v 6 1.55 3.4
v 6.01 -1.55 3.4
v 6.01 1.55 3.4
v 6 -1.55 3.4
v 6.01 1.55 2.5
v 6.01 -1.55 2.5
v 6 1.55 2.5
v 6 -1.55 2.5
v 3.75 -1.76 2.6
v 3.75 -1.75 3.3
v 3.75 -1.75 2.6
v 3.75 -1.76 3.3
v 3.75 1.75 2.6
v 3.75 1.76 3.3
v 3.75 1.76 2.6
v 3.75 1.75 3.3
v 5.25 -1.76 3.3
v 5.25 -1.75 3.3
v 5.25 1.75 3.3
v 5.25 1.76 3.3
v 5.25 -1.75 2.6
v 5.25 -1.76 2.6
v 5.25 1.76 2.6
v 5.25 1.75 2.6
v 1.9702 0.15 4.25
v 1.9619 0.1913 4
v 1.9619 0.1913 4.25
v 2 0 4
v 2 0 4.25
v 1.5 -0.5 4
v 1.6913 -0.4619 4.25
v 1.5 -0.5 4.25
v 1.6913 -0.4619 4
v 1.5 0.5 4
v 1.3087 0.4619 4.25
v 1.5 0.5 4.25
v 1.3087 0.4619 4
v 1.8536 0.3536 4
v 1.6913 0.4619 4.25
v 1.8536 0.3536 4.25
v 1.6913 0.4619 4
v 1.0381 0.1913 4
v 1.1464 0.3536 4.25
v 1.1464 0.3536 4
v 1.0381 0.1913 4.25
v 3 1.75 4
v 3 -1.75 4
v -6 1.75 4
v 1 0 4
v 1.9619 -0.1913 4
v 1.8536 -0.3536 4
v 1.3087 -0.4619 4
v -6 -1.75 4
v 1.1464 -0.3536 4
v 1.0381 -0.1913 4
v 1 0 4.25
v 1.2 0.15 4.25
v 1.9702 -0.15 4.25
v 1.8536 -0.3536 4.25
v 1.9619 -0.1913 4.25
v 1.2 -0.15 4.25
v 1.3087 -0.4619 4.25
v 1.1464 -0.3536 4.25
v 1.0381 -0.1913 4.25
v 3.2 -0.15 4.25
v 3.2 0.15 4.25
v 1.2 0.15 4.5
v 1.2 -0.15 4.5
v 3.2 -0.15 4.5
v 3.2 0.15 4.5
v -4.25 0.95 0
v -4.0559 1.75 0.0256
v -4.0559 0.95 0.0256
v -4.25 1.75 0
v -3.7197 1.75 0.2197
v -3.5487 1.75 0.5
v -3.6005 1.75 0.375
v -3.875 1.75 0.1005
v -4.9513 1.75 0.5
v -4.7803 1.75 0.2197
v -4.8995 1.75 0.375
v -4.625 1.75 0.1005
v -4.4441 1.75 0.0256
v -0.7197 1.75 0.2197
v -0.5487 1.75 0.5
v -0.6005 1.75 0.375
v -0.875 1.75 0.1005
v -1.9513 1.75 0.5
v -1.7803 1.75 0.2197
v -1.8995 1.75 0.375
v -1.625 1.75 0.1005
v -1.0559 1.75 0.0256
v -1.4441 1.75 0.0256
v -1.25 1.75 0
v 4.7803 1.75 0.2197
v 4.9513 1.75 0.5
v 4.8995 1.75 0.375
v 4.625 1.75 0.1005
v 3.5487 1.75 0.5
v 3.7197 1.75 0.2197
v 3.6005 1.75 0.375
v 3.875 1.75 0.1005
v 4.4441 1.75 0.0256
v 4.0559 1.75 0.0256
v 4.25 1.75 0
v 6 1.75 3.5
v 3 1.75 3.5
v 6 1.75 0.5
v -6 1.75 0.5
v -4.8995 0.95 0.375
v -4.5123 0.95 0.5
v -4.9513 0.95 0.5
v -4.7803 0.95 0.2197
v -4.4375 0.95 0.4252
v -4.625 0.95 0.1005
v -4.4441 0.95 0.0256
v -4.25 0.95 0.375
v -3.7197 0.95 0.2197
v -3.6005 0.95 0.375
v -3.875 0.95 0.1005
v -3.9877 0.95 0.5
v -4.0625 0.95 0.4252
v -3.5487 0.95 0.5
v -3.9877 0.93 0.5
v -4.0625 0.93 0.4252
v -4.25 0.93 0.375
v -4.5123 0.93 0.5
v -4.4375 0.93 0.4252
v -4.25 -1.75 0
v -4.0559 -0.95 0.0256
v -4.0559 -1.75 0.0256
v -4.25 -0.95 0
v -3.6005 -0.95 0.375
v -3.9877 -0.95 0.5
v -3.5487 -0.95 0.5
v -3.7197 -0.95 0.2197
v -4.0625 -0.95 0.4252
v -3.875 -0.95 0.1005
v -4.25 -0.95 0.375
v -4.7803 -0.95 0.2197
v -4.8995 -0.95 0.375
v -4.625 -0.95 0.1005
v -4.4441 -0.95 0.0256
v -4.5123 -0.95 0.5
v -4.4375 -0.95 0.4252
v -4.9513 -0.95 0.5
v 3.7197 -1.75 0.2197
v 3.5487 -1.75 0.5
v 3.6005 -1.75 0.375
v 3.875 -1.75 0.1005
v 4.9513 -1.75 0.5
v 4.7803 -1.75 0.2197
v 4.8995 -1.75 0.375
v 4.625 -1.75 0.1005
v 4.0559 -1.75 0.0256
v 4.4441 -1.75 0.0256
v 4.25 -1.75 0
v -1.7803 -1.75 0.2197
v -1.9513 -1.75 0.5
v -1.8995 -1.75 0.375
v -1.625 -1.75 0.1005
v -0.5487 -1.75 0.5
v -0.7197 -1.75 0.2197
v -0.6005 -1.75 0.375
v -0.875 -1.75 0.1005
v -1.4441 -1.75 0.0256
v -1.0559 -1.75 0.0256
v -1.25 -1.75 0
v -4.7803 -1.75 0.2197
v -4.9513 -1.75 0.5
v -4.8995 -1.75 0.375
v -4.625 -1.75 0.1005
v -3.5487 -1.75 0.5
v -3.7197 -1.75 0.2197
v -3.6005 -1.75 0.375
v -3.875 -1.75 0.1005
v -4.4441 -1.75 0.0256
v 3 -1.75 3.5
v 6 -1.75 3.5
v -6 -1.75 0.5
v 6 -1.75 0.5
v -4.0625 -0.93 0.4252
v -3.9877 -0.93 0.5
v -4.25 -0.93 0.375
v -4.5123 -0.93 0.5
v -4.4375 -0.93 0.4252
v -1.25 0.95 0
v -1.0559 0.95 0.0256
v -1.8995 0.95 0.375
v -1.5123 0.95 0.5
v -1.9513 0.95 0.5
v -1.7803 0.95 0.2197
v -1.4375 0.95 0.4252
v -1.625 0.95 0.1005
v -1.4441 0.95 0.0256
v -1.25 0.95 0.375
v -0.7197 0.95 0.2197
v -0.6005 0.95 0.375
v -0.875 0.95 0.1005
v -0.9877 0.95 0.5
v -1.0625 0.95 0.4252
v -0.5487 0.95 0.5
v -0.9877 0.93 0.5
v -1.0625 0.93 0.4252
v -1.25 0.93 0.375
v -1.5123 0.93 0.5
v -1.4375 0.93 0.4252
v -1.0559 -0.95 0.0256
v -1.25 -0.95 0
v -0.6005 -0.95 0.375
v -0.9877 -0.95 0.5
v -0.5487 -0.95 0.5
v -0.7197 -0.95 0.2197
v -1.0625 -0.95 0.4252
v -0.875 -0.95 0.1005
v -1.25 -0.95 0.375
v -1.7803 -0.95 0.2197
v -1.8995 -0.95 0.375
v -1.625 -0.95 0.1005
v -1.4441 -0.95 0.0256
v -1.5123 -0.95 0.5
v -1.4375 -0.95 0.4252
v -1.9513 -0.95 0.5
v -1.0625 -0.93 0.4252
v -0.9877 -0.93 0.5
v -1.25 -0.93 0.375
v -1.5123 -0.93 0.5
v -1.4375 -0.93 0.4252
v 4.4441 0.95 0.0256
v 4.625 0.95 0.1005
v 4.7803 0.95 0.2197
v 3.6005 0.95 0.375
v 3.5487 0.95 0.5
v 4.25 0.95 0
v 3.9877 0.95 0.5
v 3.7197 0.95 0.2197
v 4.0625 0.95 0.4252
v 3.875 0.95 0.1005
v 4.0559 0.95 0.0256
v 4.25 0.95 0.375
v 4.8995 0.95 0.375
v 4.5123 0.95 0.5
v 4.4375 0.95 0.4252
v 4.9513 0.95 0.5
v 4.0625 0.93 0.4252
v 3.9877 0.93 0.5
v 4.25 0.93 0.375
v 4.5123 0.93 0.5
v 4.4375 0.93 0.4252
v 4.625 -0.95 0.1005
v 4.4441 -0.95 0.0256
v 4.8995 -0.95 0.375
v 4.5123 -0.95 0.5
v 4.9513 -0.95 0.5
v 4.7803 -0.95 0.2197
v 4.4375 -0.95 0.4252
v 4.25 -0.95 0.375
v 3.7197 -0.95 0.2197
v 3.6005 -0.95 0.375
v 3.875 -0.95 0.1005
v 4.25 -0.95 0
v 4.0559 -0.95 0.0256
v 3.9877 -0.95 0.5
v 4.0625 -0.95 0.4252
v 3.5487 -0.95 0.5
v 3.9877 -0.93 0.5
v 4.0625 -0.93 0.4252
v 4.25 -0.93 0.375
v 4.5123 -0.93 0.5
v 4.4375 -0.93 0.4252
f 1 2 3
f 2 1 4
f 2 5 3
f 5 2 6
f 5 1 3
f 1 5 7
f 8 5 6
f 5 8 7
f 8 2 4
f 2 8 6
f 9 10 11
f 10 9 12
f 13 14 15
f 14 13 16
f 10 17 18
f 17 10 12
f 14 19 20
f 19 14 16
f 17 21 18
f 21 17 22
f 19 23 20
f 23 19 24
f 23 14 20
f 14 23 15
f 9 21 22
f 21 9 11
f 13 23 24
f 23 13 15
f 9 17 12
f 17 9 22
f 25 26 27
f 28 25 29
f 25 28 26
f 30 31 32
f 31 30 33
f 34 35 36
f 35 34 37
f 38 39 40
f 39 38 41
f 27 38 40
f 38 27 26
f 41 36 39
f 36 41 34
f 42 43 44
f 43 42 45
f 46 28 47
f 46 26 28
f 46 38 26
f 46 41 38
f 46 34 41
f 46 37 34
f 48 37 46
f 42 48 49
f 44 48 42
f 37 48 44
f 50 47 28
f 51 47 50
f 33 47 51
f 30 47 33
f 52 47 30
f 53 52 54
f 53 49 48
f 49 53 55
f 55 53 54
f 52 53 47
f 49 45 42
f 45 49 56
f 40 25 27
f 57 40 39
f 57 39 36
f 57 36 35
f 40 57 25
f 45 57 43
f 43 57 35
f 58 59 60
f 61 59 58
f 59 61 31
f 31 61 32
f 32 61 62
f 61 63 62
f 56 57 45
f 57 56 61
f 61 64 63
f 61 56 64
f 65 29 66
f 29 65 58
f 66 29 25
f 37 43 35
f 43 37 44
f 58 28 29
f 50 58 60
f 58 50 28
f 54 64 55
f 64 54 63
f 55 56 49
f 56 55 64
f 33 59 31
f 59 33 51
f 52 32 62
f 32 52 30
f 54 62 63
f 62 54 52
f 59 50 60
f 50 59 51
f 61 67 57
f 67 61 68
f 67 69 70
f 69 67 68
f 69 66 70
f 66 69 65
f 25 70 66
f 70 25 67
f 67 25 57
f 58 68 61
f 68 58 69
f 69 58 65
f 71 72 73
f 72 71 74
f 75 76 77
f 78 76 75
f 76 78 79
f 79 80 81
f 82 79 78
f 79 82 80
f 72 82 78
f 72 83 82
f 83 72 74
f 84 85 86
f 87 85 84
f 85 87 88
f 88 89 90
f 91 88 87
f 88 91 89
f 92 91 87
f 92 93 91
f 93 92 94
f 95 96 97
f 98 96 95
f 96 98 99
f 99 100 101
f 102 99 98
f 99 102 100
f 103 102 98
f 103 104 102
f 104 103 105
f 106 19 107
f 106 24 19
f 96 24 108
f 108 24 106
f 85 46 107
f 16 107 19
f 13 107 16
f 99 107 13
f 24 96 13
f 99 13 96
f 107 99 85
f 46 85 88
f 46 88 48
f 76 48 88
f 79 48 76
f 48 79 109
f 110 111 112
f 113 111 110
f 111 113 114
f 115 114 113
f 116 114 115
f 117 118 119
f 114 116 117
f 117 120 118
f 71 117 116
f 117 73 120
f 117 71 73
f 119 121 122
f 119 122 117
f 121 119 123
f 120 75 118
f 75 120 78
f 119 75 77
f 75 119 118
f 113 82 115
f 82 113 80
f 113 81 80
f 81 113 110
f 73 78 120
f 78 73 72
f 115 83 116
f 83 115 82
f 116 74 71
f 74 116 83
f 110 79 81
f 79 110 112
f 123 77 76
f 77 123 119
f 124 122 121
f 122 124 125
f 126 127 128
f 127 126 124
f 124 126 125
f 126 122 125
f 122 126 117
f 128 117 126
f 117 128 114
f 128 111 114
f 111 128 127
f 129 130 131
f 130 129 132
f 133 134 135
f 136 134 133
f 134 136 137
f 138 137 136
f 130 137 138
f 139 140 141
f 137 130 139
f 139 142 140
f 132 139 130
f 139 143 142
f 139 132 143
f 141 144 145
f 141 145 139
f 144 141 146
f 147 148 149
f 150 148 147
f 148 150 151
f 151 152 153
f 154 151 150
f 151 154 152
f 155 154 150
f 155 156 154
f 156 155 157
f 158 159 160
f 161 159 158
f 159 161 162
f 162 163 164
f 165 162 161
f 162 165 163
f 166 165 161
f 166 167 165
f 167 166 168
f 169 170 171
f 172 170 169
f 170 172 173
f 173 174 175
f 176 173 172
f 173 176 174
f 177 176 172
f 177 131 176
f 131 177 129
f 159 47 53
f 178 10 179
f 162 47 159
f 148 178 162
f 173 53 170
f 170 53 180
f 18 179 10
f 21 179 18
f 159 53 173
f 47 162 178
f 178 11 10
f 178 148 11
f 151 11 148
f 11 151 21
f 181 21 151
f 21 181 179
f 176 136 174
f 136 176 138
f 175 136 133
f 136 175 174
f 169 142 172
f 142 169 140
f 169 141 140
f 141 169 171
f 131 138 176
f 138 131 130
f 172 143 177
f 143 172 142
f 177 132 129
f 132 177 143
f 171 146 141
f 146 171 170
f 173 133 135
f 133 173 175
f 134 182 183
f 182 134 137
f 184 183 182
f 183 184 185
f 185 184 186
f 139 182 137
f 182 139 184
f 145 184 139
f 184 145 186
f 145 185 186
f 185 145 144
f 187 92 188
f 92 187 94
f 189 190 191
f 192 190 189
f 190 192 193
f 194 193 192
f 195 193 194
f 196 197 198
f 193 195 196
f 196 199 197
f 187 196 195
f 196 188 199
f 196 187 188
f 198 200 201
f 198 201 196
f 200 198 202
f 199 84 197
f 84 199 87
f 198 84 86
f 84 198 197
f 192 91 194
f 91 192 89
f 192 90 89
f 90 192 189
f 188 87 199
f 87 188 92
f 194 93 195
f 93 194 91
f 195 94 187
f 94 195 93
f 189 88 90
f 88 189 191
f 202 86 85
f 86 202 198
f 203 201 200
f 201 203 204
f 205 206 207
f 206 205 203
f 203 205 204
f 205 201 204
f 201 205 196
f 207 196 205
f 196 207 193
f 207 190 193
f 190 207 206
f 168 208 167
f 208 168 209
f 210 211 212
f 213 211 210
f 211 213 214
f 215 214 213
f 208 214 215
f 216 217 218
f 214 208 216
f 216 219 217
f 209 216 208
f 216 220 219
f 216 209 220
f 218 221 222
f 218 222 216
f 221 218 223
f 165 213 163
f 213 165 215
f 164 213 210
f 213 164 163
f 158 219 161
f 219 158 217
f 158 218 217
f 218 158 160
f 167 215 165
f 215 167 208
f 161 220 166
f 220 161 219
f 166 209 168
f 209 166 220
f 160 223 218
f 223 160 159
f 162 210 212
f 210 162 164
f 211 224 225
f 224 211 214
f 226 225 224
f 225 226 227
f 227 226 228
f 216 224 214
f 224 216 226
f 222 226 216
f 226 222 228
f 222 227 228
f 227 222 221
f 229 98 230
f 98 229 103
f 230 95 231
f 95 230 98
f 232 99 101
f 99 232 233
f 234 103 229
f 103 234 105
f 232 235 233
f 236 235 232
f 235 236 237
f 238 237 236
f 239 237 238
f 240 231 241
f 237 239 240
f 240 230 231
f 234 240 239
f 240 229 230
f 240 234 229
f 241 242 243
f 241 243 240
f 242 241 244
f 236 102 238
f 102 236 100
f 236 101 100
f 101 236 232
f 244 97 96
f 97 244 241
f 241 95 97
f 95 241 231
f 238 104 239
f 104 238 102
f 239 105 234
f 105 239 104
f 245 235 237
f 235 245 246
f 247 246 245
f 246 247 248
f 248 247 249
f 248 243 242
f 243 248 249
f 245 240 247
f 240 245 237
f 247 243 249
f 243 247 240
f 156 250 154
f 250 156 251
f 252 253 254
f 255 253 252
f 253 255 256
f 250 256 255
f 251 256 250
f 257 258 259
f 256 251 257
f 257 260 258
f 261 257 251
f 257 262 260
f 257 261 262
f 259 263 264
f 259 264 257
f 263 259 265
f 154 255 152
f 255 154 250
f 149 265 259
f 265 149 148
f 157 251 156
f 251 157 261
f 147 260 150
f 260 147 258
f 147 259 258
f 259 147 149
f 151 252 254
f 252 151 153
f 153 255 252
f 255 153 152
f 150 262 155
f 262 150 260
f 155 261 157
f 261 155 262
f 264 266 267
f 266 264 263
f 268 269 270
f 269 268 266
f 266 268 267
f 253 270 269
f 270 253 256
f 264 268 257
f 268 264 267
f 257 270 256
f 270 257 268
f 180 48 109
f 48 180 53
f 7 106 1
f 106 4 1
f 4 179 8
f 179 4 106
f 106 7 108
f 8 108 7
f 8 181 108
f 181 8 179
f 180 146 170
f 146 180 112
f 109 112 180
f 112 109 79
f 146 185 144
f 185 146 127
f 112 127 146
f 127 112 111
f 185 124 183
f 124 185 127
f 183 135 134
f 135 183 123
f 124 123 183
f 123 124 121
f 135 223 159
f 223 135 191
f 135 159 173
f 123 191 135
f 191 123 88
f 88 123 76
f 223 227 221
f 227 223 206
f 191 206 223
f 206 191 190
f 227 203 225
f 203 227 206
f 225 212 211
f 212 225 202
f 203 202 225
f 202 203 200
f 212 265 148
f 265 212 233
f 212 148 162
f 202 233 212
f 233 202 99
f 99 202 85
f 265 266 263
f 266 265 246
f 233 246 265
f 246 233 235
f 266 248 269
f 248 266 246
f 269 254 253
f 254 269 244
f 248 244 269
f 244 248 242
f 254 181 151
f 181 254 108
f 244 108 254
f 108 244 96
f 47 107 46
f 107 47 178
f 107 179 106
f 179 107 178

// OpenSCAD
// Airport Crash Tender / ARFF Fire Truck

module ARFF_FireTruck() {
    length = 12;
    width = 3.5;
    
    c_body = "firebrick";
    c_cab = "darkred";
    c_glass = "lightskyblue";
    c_tire = "#222222";
    c_silver = "silver";

    //LOWER
    color(c_body)
    translate([0, 0, 1.25])
        cube([length, width, 1.5], center = true);

    // rear tank & housing
    color(c_body)
    translate([-1.5, 0, 3.0])
        cube([9, width, 2.0], center = true);

    // front cab
    color(c_cab)
    translate([4.5, 0, 2.75])
        cube([3, width, 1.5], center = true);

    // windshield
    color(c_glass) {

        translate([5.96, 0, 2.95])
            cube([0.1, width - 0.4, 0.9], center = true);
            
        translate([4.5, 0, 2.95])
            cube([1.5, width + 0.02, 0.7], center = true);
    }

    // water shooter
    color(c_silver) {
        // base (4.0 ~ 4.25)
        translate([1.5, 0, 4.0])
            cylinder(h = 0.25, r = 0.5, $fn = 16);
            
        // barrel
        translate([2.2, 0, 4.375])
            cube([2.0, 0.3, 0.25], center = true);
    }

    // wheels
    wheel_r = 0.75;
    tire_w = 0.8;

    axles = [-4.25, -1.25, 4.25];
    y_offset = 1.35; 

    for (x = axles) {
        // left Wheels
        // tires
        color(c_tire)
        translate([x, y_offset, wheel_r])
            rotate([90, 0, 0])
                cylinder(h = tire_w, r = wheel_r, center = true, $fn = 24);
        // hubcaps
        color(c_silver)
        translate([x, y_offset - 0.01, wheel_r])
            rotate([90, 0, 0])
                cylinder(h = tire_w + 0.02, r = wheel_r * 0.5, center = true, $fn = 12);

        // Right Wheels
        // tires
        color(c_tire)
        translate([x, -y_offset, wheel_r])
            rotate([90, 0, 0])
                cylinder(h = tire_w, r = wheel_r, center = true, $fn = 24);
        // hubcaps
        color(c_silver)
        translate([x, -y_offset + 0.01, wheel_r])
            rotate([90, 0, 0])
                cylinder(h = tire_w + 0.02, r = wheel_r * 0.5, center = true, $fn = 12);
    }
}

ARFF_FireTruck();
